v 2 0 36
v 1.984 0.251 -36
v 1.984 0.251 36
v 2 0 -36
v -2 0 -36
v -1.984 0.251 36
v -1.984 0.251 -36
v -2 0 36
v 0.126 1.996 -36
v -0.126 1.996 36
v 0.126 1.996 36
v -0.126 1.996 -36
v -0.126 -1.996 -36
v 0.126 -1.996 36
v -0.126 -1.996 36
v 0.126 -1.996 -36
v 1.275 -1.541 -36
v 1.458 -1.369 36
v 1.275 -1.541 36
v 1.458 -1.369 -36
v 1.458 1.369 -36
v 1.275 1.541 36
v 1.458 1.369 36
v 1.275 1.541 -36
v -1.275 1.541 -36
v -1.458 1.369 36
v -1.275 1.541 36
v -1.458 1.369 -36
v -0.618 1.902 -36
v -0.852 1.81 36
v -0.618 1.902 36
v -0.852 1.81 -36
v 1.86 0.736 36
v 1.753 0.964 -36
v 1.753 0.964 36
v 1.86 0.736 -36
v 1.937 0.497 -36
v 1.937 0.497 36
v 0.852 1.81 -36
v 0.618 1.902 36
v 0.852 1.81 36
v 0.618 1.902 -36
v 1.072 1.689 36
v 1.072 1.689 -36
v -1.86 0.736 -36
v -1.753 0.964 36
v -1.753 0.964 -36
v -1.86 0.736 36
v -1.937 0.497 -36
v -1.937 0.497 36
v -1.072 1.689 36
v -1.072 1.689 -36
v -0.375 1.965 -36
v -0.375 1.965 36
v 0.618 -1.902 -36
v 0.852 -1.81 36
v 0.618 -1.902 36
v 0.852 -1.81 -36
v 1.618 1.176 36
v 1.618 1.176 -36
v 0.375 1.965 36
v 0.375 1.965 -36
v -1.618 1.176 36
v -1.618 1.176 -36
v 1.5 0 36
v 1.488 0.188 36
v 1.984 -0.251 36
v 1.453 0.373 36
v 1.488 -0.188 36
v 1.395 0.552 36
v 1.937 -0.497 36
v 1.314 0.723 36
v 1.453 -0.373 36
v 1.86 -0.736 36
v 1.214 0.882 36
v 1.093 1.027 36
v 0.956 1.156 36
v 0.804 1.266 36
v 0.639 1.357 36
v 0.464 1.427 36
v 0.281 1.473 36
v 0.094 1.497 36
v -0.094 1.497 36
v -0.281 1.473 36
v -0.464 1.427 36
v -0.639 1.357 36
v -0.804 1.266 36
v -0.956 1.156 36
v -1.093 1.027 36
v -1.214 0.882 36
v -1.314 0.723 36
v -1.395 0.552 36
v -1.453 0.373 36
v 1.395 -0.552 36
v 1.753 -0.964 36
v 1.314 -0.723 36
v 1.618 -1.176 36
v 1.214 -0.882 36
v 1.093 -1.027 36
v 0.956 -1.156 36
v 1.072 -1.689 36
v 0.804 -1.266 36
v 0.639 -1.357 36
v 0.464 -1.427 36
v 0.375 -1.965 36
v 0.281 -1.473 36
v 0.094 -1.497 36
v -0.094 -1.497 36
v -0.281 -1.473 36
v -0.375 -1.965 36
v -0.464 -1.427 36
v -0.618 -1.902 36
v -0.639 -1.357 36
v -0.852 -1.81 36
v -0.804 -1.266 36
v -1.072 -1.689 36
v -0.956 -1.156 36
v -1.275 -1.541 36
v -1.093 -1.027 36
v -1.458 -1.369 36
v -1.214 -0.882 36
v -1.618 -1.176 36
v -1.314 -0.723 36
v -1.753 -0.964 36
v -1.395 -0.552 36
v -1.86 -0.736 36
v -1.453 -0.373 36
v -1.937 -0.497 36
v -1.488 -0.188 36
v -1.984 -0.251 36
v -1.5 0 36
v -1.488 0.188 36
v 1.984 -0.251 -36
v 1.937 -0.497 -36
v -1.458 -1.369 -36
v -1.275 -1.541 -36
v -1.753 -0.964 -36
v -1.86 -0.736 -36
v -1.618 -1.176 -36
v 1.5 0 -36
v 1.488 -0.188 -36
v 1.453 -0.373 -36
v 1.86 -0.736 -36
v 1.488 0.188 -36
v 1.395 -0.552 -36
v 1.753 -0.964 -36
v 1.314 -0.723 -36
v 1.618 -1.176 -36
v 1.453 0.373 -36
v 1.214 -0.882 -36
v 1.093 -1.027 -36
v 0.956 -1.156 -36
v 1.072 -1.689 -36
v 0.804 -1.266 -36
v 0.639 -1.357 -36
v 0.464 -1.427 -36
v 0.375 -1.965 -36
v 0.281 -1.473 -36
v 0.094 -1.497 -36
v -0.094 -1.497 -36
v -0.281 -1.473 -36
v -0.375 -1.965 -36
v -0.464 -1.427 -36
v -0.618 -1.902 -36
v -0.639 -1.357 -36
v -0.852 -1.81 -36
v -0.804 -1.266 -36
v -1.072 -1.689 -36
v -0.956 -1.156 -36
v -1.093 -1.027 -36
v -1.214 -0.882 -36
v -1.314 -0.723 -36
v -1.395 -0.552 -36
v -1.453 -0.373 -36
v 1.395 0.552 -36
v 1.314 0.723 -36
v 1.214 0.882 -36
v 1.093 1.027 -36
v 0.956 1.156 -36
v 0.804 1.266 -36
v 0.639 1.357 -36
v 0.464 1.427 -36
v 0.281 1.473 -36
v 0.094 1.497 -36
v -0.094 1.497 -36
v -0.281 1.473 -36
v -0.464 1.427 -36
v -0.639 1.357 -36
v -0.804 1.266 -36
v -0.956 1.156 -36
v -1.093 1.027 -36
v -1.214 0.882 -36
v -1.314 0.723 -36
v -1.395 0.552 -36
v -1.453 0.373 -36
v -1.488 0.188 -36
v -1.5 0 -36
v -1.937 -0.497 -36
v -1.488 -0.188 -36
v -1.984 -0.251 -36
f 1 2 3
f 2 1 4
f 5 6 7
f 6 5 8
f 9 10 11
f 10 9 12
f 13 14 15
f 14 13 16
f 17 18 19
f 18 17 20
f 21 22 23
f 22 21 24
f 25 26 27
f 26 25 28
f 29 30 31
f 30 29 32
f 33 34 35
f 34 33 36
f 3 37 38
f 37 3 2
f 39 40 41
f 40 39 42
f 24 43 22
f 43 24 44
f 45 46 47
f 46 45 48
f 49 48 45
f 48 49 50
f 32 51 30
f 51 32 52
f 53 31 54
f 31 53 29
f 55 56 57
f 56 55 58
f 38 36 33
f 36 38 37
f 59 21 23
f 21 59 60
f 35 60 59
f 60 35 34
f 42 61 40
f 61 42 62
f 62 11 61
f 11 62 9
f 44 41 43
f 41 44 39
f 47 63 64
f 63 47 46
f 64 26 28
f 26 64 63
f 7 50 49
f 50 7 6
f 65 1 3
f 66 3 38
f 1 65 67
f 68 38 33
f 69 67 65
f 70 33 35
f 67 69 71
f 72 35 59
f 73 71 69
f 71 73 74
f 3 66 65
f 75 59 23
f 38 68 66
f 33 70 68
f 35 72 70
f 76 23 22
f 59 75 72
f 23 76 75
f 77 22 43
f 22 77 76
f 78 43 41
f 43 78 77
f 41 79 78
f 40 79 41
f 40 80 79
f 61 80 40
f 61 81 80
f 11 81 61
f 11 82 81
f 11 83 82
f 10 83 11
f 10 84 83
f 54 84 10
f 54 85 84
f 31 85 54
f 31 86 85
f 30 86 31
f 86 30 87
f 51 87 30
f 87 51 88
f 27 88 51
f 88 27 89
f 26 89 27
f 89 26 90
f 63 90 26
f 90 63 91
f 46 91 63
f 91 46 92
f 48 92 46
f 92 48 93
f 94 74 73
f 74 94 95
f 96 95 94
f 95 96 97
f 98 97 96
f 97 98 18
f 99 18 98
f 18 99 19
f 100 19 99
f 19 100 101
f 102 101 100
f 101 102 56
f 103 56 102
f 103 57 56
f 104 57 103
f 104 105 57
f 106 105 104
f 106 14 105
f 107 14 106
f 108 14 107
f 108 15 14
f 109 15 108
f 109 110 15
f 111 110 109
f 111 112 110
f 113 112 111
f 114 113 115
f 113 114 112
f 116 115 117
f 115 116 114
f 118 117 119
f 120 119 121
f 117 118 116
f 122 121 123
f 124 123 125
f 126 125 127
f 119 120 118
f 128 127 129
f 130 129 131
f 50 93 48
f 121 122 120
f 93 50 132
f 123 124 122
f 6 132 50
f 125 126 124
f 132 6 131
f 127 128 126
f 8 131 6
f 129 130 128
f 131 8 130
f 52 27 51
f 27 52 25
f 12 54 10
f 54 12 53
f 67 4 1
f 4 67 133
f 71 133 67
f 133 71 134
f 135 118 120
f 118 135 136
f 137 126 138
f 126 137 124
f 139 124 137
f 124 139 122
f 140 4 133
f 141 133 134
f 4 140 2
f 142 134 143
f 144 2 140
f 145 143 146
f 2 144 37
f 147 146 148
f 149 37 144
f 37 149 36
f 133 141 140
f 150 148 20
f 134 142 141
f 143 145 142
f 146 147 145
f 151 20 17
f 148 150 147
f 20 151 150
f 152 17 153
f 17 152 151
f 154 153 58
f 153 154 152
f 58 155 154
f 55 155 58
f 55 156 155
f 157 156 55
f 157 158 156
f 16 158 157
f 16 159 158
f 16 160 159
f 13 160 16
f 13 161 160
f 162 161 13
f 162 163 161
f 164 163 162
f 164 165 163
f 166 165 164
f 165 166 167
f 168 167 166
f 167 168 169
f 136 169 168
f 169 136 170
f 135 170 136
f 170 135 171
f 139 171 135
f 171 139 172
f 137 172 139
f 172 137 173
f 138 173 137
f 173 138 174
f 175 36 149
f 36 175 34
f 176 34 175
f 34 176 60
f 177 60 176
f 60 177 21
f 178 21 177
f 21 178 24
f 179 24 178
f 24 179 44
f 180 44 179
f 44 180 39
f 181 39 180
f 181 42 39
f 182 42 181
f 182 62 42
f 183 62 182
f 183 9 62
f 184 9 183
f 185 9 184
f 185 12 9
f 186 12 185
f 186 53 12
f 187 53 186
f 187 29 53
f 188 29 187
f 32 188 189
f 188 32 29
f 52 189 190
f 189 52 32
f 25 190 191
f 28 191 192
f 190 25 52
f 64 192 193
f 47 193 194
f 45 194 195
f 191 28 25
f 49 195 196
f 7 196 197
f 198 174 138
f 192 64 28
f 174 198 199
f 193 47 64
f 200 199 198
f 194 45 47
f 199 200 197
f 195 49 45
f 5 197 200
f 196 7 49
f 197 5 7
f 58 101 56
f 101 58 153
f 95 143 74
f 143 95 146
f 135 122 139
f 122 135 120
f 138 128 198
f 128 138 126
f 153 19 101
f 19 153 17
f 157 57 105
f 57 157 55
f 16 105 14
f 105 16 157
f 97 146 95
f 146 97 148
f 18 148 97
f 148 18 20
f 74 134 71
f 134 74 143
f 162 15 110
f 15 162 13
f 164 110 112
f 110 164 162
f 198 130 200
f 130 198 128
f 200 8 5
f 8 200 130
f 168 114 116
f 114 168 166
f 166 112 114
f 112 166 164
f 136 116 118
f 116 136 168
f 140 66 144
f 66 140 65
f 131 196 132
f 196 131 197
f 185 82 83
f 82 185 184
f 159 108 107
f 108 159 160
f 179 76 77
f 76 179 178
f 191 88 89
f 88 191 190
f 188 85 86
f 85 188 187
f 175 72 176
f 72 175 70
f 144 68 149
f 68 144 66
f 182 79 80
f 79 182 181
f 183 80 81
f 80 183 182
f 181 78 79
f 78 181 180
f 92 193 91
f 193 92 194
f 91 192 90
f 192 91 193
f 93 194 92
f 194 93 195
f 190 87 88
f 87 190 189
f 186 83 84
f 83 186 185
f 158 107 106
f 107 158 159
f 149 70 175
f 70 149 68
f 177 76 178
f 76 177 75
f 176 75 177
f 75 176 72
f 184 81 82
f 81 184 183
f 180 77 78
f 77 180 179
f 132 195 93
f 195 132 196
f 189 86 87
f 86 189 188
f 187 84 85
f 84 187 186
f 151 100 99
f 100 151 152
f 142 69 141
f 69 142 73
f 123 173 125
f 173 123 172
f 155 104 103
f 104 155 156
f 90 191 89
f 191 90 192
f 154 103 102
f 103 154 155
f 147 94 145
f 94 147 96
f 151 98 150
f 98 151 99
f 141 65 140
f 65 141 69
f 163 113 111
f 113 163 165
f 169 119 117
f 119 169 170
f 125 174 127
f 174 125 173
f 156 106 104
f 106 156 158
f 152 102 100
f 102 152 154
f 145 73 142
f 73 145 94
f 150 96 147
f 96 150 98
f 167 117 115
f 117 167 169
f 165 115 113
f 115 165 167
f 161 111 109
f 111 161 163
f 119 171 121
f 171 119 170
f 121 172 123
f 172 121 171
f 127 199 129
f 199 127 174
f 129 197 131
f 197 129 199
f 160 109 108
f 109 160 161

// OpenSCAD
$fn = 50;


difference() {
	union() {
		translate(v = [0, 0, -36.0000000000]) {
			cylinder(h = 72, r = 2.0000000000);
		}
	}
	union() {
		translate(v = [0, 0, -100.0000000000]) {
			cylinder(h = 200, r = 1.5000000000);
		}
	}
}
